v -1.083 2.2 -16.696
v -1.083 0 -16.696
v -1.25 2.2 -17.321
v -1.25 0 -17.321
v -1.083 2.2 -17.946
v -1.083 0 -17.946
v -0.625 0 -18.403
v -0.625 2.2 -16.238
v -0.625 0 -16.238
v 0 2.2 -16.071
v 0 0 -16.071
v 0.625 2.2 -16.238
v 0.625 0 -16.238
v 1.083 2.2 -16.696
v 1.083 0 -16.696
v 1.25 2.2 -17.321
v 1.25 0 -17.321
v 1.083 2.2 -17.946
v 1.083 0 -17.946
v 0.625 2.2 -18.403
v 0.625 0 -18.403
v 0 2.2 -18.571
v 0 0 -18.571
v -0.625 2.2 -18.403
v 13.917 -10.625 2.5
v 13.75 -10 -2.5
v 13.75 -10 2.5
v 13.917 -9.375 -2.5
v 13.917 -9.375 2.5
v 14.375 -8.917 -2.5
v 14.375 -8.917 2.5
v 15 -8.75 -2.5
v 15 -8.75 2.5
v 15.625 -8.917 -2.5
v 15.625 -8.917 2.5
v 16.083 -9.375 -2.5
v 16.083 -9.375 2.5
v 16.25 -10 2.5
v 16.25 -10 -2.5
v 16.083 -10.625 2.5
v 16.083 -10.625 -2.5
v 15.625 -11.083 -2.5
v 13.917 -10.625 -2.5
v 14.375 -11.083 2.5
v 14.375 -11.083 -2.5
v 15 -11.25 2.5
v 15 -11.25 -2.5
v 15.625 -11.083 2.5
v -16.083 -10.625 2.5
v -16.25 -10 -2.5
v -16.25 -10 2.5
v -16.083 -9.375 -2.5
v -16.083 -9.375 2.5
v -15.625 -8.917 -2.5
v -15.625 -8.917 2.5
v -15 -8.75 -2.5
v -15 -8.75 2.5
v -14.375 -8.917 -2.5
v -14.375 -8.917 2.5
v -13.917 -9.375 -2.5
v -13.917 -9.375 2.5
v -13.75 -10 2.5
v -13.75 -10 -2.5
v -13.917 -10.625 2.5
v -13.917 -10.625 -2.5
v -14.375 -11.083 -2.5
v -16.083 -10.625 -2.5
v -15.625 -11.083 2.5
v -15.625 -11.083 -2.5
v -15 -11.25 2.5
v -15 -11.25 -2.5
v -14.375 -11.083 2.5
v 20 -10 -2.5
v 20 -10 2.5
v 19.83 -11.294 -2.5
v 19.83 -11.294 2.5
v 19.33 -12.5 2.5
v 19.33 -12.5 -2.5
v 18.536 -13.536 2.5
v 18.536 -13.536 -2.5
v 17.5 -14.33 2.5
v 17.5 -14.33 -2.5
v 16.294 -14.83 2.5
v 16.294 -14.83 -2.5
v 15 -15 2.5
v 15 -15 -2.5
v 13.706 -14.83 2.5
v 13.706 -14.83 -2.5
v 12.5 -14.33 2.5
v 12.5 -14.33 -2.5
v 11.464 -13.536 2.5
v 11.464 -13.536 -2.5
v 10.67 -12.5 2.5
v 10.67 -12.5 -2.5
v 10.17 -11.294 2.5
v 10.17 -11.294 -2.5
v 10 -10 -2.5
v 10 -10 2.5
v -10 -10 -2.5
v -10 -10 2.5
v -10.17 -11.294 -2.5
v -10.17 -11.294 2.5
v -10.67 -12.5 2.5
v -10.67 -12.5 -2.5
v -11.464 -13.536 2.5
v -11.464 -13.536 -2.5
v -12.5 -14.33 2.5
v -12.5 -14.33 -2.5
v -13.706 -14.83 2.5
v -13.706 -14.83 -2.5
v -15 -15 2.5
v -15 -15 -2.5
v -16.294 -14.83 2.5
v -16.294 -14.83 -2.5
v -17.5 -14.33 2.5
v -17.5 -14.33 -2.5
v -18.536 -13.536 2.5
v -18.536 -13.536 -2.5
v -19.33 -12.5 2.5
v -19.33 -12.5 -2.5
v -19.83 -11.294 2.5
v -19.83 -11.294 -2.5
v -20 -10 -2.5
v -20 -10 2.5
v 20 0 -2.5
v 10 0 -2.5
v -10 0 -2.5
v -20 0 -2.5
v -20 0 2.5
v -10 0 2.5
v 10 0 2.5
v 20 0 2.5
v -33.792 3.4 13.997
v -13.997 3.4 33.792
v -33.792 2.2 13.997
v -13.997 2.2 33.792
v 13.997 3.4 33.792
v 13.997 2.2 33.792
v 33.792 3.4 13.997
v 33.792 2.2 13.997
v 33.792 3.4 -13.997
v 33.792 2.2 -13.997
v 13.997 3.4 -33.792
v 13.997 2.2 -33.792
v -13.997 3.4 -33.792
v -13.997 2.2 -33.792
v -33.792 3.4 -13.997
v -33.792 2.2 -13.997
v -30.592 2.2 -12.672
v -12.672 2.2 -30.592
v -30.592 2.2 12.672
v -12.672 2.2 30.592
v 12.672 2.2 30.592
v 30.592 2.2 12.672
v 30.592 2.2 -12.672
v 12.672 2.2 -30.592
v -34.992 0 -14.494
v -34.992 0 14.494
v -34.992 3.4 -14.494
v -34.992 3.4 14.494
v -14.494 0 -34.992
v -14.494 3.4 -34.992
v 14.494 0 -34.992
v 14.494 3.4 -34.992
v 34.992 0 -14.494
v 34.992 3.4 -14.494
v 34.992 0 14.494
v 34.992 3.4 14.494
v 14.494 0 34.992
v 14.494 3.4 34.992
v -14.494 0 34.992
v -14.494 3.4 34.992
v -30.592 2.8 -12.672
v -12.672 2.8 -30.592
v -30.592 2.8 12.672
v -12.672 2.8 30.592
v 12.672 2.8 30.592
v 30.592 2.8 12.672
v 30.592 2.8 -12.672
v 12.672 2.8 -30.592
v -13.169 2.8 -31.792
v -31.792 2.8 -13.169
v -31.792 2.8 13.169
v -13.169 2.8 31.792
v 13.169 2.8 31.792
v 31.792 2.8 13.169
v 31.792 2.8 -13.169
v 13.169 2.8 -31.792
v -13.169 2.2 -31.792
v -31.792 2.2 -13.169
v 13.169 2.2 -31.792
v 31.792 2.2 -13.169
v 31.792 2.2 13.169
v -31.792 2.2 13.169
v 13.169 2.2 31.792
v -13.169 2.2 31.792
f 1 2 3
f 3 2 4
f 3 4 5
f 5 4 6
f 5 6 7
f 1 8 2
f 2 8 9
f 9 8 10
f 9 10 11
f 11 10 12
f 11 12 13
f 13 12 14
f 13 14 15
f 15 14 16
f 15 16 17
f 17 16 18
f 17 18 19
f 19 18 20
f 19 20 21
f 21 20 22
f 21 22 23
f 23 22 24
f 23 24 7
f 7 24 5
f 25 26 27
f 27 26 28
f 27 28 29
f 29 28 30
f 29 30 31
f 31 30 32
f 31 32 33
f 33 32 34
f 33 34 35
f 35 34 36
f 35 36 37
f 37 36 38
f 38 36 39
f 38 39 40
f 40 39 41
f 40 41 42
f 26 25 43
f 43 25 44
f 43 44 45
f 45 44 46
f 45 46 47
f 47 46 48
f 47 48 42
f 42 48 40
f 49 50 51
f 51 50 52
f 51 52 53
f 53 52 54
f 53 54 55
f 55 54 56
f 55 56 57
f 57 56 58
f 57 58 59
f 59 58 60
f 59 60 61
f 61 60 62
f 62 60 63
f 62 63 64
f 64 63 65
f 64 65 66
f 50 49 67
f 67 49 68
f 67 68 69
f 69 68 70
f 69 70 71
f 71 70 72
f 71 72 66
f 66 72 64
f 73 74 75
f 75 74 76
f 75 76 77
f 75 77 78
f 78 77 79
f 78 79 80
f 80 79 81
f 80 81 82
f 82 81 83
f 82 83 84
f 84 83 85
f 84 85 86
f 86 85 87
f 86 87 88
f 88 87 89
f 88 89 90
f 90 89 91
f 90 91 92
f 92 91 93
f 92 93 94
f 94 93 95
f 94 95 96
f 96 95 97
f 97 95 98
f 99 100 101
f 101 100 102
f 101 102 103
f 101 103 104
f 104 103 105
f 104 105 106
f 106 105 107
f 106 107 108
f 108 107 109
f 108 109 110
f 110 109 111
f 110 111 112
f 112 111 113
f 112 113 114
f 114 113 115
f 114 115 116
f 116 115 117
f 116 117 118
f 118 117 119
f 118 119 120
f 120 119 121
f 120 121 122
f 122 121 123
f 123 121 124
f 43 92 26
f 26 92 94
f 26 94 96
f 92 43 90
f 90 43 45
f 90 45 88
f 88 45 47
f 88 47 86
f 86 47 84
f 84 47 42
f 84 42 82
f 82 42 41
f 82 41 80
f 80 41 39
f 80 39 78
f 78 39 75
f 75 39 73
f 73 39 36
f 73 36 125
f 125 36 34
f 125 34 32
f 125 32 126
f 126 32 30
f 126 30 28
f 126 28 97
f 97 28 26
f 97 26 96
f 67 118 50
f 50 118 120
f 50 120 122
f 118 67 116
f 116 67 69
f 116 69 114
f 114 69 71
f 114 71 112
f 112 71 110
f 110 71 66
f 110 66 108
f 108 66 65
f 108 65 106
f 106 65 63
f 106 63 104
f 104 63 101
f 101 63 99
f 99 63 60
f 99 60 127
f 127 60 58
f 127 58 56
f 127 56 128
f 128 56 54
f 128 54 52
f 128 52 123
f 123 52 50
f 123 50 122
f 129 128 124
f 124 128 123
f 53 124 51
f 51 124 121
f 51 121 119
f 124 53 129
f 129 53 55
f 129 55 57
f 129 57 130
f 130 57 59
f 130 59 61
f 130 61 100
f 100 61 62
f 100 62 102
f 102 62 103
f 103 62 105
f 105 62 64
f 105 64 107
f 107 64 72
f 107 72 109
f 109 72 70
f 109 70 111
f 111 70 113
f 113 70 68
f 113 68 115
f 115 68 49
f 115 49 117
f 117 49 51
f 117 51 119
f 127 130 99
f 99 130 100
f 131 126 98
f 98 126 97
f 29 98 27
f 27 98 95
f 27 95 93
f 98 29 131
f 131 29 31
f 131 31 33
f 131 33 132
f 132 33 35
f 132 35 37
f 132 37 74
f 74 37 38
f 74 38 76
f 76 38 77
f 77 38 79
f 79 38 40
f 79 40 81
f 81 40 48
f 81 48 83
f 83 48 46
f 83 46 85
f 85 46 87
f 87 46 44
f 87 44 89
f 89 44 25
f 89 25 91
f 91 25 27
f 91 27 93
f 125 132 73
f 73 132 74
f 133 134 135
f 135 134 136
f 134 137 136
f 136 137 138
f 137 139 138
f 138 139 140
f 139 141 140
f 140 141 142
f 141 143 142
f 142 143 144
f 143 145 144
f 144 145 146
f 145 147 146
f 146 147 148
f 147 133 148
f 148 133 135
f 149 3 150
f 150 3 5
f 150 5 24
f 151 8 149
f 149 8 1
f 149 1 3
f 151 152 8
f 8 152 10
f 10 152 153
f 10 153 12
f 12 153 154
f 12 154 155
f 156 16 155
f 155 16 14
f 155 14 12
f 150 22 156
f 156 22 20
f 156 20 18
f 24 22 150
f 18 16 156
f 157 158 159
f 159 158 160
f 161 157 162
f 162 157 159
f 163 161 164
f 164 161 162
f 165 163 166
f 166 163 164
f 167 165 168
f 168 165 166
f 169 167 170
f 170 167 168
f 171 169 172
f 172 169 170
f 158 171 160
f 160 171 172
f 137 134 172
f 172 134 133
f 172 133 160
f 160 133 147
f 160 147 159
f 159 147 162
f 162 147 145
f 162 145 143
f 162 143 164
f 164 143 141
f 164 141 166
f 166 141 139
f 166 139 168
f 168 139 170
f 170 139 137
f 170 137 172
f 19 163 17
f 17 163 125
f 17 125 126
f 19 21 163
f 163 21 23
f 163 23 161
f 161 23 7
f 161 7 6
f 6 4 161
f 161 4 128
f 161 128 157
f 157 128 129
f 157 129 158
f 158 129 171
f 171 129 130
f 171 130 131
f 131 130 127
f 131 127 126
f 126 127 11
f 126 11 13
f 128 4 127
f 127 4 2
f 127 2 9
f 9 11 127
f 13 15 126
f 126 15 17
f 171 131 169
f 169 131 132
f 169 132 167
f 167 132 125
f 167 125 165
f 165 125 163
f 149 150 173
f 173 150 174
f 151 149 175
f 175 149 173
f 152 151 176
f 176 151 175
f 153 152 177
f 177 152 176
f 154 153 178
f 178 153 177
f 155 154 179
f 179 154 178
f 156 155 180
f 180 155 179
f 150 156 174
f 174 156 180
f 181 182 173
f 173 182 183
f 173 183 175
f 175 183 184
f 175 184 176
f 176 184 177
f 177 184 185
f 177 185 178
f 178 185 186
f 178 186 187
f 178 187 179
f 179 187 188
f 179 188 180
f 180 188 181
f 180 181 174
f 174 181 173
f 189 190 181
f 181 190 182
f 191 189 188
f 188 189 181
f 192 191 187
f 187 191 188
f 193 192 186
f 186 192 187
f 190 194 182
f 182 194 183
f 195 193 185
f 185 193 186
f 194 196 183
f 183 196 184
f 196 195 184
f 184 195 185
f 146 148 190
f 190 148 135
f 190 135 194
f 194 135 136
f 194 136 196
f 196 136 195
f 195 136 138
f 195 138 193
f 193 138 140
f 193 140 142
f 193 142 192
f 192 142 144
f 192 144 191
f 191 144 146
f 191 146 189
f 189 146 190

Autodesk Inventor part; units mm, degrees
ref_plane "YZ Plane" through (0, 0, 0) normal (1, 0, 0) x (0, 1, 0)
ref_plane "XZ Plane" through (0, 0, 0) normal (0, 1, 0) x (-1, 0, 0)
ref_plane "XY Plane" through (0, 0, 0) normal (0, 0, 1) x (1, 0, 0)
sketch "스케치3" plane through (0, 0, 0) normal (0, 1, 0) x (-1, 0, 0)
  line L0 (34.9919, -14.4941) -> (14.4941, -34.9919)
  line L1 (14.4941, -34.9919) -> (-14.4941, -34.9919)
  line L2 (-14.4941, -34.9919) -> (-34.9919, -14.4941)
  line L3 (-34.9919, -14.4941) -> (-34.9919, 14.4941)
  line L4 (-34.9919, 14.4941) -> (-14.4941, 34.9919)
  line L5 (-14.4941, 34.9919) -> (14.4941, 34.9919)
  line L6 (14.4941, 34.9919) -> (34.9919, 14.4941)
  line L7 (34.9919, 14.4941) -> (34.9919, -14.4941)
  line L8 (32.5919, -13.5) -> (13.5, -32.5919)
  line L9 (13.5, -32.5919) -> (-13.5, -32.5919)
  line L10 (-13.5, -32.5919) -> (-32.5919, -13.5)
  line L11 (-32.5919, -13.5) -> (-32.5919, 13.5)
  line L12 (-32.5919, 13.5) -> (-13.5, 32.5919)
  line L13 (-13.5, 32.5919) -> (13.5, 32.5919)
  line L14 (13.5, 32.5919) -> (32.5919, 13.5)
  line L15 (32.5919, 13.5) -> (32.5919, -13.5)
  point P0 (0, 0)
  point P1 (0, 0)
  point P2 (0, 0)
  point P3 (0, 0)
  dimension "d43" = 27
  dimension "d44" = 2.4
extrude "돌출2" add sketch "스케치3" along normal blind 3.4 contours L0 L1 L2 L3 L4 L5 L6 L7 | L8 L9 L10 L11 L12 L13 L14 L15
sketch "스케치4" plane through (0, 3.4, 0) normal (0, 1, 0) x (1, 0, 0)
  line L0 (13.5, -32.5919) -> (-13.5, -32.5919)
  line L1 (-13.5, -32.5919) -> (-32.5919, -13.5)
  line L2 (-32.5919, -13.5) -> (-32.5919, 13.5)
  line L3 (-32.5919, 13.5) -> (-13.5, 32.5919)
  line L4 (-13.5, 32.5919) -> (13.5, 32.5919)
  line L5 (13.5, 32.5919) -> (32.5919, 13.5)
  line L6 (32.5919, 13.5) -> (32.5919, -13.5)
  line L7 (32.5919, -13.5) -> (13.5, -32.5919)
  line L8 (-13.9971, 33.7919) -> (13.9971, 33.7919)
  line L9 (13.9971, 33.7919) -> (33.7919, 13.9971)
  line L10 (33.7919, 13.9971) -> (33.7919, -13.9971)
  line L11 (33.7919, -13.9971) -> (13.9971, -33.7919)
  line L12 (13.9971, -33.7919) -> (-13.9971, -33.7919)
  line L13 (-13.9971, -33.7919) -> (-33.7919, -13.9971)
  line L14 (-33.7919, -13.9971) -> (-33.7919, 13.9971)
  line L15 (-33.7919, 13.9971) -> (-13.9971, 33.7919)
  line L16 (-13.1686, 31.7919) -> (13.1686, 31.7919)
  line L17 (13.1686, 31.7919) -> (31.7919, 13.1686)
  line L18 (31.7919, 13.1686) -> (31.7919, -13.1686)
  line L19 (31.7919, -13.1686) -> (13.1686, -31.7919)
  line L20 (13.1686, -31.7919) -> (-13.1686, -31.7919)
  line L21 (-13.1686, -31.7919) -> (-31.7919, -13.1686)
  line L22 (-31.7919, -13.1686) -> (-31.7919, 13.1686)
  line L23 (-31.7919, 13.1686) -> (-13.1686, 31.7919)
  point P0 (0, 0)
  point P1 (0, 0)
  point P2 (0, 0)
  point P3 (0, 0)
  dimension "d7" = 27
  dimension "d42" = 1.2
  dimension "d45" = 0.8
extrude "돌출3" cut sketch "스케치4" against normal blind 1.2 contours L0 L1 L2 L3 L4 L5 L6 L7 | L8 L9 L10 L11 L12 L13 L14 L15 | L16 L17 L18 L19 L20 L21 L22 L23
sketch "스케치5" plane through (0, 0, 0) normal (0, -1, 0) x (1, 0, 0)
  line L0 (10, 2.5) -> (20, 2.5)
  line L1 (20, 2.5) -> (20, -2.5)
  line L2 (20, -2.5) -> (10, -2.5)
  line L3 (10, -2.5) -> (10, 2.5)
  line L4 (10, 2.5) -> (20, -2.5) construction
  line L5 (20, 2.5) -> (10, -2.5) construction
  line L6 (-20, 2.5) -> (-10, 2.5)
  line L7 (-10, 2.5) -> (-10, -2.5)
  line L8 (-10, -2.5) -> (-20, -2.5)
  line L9 (-20, -2.5) -> (-20, 2.5)
  line L10 (-20, 2.5) -> (-10, -2.5) construction
  line L11 (-10, 2.5) -> (-20, -2.5) construction
  point P0 (0, 0)
  point P1 (15, 0)
  point P2 (-15, 0)
  dimension "d11" = 10
  dimension "d12" = 5
  dimension "d13" = 10
  dimension "d16" = 30
extrude "돌출4" add sketch "스케치5" along normal blind 10
sketch "스케치6" plane through (-10, 0, -2.5) normal (0, 0, -1) x (-1, 0, 0)
  circle A0 centre (5, -10) radius 5
  circle A1 centre (-25, -10) radius 5
  line L0 (-20, -10) -> (-30, -10) projected
  line L1 (10, -10) -> (0, -10) projected
  point P0 (-10, 0)
  dimension "d23" = 10
  dimension "d24" = 10
extrude "돌출5" add sketch "스케치6" against normal blind 5
sketch "스케치7" plane through (-10, 0, -2.5) normal (0, 0, -1) x (-1, 0, 0)
  circle A0 centre (5, -10) radius 1.25
  line L0 (10, 0) -> (10, -10) projected
  line L1 (0, 0) -> (10, 0) projected
  line L2 (4.7788, 0) -> (0, 0)
  circle A1 centre (-25, -10) radius 1.25
  point P0 (-10, 0)
  dimension "d27" = 2.5
  dimension "d28" = 5
  dimension "d31" = 30
extrude "돌출6" cut sketch "스케치7" against normal blind 5
sketch "스케치8" plane through (0, 0, 0) normal (0, -1, 0) x (1, 0, 0)
  circle A0 centre (0, -17.3205) radius 1.25
  line L0 (-10, 2.5) -> (-10, -2.5) projected
  point P0 (0, 0)
  point P1 (-10, 0)
  dimension "d38" = 2.5
  dimension "d39" = 17.3205
extrude "돌출7" cut sketch "스케치8" against normal blind 5
sketch "스케치9" plane through (0, 2.2, 0) normal (0, 1, 0) x (1, 0, 0)
  line L0 (-13.1686, 31.7919) -> (13.1686, 31.7919)
  line L1 (13.1686, 31.7919) -> (31.7919, 13.1686)
  line L2 (31.7919, 13.1686) -> (31.7919, -13.1686)
  line L3 (31.7919, -13.1686) -> (13.1686, -31.7919)
  line L4 (13.1686, -31.7919) -> (-13.1686, -31.7919)
  line L5 (-13.1686, -31.7919) -> (-31.7919, -13.1686)
  line L6 (-31.7919, -13.1686) -> (-31.7919, 13.1686)
  line L7 (-31.7919, 13.1686) -> (-13.1686, 31.7919)
  line L8 (-13.9971, 33.7919) -> (13.9971, 33.7919) projected
  line L9 (-12.6716, 30.5919) -> (12.6716, 30.5919)
  line L10 (12.6716, 30.5919) -> (30.5919, 12.6716)
  line L11 (30.5919, 12.6716) -> (30.5919, -12.6716)
  line L12 (30.5919, -12.6716) -> (12.6716, -30.5919)
  line L13 (12.6716, -30.5919) -> (-12.6716, -30.5919)
  line L14 (-12.6716, -30.5919) -> (-30.5919, -12.6716)
  line L15 (-30.5919, -12.6716) -> (-30.5919, 12.6716)
  line L16 (-30.5919, 12.6716) -> (-12.6716, 30.5919)
  point P0 (0, 0)
  point P1 (0, 0)
  point P2 (0, 0)
  dimension "d46" = 2
  dimension "d47" = 1.2
extrude "돌출8" add sketch "스케치9" along normal blind 0.6
properties part number "팔각형 OV-PAM 5패턴 상단 - 틈 너비 수정"
